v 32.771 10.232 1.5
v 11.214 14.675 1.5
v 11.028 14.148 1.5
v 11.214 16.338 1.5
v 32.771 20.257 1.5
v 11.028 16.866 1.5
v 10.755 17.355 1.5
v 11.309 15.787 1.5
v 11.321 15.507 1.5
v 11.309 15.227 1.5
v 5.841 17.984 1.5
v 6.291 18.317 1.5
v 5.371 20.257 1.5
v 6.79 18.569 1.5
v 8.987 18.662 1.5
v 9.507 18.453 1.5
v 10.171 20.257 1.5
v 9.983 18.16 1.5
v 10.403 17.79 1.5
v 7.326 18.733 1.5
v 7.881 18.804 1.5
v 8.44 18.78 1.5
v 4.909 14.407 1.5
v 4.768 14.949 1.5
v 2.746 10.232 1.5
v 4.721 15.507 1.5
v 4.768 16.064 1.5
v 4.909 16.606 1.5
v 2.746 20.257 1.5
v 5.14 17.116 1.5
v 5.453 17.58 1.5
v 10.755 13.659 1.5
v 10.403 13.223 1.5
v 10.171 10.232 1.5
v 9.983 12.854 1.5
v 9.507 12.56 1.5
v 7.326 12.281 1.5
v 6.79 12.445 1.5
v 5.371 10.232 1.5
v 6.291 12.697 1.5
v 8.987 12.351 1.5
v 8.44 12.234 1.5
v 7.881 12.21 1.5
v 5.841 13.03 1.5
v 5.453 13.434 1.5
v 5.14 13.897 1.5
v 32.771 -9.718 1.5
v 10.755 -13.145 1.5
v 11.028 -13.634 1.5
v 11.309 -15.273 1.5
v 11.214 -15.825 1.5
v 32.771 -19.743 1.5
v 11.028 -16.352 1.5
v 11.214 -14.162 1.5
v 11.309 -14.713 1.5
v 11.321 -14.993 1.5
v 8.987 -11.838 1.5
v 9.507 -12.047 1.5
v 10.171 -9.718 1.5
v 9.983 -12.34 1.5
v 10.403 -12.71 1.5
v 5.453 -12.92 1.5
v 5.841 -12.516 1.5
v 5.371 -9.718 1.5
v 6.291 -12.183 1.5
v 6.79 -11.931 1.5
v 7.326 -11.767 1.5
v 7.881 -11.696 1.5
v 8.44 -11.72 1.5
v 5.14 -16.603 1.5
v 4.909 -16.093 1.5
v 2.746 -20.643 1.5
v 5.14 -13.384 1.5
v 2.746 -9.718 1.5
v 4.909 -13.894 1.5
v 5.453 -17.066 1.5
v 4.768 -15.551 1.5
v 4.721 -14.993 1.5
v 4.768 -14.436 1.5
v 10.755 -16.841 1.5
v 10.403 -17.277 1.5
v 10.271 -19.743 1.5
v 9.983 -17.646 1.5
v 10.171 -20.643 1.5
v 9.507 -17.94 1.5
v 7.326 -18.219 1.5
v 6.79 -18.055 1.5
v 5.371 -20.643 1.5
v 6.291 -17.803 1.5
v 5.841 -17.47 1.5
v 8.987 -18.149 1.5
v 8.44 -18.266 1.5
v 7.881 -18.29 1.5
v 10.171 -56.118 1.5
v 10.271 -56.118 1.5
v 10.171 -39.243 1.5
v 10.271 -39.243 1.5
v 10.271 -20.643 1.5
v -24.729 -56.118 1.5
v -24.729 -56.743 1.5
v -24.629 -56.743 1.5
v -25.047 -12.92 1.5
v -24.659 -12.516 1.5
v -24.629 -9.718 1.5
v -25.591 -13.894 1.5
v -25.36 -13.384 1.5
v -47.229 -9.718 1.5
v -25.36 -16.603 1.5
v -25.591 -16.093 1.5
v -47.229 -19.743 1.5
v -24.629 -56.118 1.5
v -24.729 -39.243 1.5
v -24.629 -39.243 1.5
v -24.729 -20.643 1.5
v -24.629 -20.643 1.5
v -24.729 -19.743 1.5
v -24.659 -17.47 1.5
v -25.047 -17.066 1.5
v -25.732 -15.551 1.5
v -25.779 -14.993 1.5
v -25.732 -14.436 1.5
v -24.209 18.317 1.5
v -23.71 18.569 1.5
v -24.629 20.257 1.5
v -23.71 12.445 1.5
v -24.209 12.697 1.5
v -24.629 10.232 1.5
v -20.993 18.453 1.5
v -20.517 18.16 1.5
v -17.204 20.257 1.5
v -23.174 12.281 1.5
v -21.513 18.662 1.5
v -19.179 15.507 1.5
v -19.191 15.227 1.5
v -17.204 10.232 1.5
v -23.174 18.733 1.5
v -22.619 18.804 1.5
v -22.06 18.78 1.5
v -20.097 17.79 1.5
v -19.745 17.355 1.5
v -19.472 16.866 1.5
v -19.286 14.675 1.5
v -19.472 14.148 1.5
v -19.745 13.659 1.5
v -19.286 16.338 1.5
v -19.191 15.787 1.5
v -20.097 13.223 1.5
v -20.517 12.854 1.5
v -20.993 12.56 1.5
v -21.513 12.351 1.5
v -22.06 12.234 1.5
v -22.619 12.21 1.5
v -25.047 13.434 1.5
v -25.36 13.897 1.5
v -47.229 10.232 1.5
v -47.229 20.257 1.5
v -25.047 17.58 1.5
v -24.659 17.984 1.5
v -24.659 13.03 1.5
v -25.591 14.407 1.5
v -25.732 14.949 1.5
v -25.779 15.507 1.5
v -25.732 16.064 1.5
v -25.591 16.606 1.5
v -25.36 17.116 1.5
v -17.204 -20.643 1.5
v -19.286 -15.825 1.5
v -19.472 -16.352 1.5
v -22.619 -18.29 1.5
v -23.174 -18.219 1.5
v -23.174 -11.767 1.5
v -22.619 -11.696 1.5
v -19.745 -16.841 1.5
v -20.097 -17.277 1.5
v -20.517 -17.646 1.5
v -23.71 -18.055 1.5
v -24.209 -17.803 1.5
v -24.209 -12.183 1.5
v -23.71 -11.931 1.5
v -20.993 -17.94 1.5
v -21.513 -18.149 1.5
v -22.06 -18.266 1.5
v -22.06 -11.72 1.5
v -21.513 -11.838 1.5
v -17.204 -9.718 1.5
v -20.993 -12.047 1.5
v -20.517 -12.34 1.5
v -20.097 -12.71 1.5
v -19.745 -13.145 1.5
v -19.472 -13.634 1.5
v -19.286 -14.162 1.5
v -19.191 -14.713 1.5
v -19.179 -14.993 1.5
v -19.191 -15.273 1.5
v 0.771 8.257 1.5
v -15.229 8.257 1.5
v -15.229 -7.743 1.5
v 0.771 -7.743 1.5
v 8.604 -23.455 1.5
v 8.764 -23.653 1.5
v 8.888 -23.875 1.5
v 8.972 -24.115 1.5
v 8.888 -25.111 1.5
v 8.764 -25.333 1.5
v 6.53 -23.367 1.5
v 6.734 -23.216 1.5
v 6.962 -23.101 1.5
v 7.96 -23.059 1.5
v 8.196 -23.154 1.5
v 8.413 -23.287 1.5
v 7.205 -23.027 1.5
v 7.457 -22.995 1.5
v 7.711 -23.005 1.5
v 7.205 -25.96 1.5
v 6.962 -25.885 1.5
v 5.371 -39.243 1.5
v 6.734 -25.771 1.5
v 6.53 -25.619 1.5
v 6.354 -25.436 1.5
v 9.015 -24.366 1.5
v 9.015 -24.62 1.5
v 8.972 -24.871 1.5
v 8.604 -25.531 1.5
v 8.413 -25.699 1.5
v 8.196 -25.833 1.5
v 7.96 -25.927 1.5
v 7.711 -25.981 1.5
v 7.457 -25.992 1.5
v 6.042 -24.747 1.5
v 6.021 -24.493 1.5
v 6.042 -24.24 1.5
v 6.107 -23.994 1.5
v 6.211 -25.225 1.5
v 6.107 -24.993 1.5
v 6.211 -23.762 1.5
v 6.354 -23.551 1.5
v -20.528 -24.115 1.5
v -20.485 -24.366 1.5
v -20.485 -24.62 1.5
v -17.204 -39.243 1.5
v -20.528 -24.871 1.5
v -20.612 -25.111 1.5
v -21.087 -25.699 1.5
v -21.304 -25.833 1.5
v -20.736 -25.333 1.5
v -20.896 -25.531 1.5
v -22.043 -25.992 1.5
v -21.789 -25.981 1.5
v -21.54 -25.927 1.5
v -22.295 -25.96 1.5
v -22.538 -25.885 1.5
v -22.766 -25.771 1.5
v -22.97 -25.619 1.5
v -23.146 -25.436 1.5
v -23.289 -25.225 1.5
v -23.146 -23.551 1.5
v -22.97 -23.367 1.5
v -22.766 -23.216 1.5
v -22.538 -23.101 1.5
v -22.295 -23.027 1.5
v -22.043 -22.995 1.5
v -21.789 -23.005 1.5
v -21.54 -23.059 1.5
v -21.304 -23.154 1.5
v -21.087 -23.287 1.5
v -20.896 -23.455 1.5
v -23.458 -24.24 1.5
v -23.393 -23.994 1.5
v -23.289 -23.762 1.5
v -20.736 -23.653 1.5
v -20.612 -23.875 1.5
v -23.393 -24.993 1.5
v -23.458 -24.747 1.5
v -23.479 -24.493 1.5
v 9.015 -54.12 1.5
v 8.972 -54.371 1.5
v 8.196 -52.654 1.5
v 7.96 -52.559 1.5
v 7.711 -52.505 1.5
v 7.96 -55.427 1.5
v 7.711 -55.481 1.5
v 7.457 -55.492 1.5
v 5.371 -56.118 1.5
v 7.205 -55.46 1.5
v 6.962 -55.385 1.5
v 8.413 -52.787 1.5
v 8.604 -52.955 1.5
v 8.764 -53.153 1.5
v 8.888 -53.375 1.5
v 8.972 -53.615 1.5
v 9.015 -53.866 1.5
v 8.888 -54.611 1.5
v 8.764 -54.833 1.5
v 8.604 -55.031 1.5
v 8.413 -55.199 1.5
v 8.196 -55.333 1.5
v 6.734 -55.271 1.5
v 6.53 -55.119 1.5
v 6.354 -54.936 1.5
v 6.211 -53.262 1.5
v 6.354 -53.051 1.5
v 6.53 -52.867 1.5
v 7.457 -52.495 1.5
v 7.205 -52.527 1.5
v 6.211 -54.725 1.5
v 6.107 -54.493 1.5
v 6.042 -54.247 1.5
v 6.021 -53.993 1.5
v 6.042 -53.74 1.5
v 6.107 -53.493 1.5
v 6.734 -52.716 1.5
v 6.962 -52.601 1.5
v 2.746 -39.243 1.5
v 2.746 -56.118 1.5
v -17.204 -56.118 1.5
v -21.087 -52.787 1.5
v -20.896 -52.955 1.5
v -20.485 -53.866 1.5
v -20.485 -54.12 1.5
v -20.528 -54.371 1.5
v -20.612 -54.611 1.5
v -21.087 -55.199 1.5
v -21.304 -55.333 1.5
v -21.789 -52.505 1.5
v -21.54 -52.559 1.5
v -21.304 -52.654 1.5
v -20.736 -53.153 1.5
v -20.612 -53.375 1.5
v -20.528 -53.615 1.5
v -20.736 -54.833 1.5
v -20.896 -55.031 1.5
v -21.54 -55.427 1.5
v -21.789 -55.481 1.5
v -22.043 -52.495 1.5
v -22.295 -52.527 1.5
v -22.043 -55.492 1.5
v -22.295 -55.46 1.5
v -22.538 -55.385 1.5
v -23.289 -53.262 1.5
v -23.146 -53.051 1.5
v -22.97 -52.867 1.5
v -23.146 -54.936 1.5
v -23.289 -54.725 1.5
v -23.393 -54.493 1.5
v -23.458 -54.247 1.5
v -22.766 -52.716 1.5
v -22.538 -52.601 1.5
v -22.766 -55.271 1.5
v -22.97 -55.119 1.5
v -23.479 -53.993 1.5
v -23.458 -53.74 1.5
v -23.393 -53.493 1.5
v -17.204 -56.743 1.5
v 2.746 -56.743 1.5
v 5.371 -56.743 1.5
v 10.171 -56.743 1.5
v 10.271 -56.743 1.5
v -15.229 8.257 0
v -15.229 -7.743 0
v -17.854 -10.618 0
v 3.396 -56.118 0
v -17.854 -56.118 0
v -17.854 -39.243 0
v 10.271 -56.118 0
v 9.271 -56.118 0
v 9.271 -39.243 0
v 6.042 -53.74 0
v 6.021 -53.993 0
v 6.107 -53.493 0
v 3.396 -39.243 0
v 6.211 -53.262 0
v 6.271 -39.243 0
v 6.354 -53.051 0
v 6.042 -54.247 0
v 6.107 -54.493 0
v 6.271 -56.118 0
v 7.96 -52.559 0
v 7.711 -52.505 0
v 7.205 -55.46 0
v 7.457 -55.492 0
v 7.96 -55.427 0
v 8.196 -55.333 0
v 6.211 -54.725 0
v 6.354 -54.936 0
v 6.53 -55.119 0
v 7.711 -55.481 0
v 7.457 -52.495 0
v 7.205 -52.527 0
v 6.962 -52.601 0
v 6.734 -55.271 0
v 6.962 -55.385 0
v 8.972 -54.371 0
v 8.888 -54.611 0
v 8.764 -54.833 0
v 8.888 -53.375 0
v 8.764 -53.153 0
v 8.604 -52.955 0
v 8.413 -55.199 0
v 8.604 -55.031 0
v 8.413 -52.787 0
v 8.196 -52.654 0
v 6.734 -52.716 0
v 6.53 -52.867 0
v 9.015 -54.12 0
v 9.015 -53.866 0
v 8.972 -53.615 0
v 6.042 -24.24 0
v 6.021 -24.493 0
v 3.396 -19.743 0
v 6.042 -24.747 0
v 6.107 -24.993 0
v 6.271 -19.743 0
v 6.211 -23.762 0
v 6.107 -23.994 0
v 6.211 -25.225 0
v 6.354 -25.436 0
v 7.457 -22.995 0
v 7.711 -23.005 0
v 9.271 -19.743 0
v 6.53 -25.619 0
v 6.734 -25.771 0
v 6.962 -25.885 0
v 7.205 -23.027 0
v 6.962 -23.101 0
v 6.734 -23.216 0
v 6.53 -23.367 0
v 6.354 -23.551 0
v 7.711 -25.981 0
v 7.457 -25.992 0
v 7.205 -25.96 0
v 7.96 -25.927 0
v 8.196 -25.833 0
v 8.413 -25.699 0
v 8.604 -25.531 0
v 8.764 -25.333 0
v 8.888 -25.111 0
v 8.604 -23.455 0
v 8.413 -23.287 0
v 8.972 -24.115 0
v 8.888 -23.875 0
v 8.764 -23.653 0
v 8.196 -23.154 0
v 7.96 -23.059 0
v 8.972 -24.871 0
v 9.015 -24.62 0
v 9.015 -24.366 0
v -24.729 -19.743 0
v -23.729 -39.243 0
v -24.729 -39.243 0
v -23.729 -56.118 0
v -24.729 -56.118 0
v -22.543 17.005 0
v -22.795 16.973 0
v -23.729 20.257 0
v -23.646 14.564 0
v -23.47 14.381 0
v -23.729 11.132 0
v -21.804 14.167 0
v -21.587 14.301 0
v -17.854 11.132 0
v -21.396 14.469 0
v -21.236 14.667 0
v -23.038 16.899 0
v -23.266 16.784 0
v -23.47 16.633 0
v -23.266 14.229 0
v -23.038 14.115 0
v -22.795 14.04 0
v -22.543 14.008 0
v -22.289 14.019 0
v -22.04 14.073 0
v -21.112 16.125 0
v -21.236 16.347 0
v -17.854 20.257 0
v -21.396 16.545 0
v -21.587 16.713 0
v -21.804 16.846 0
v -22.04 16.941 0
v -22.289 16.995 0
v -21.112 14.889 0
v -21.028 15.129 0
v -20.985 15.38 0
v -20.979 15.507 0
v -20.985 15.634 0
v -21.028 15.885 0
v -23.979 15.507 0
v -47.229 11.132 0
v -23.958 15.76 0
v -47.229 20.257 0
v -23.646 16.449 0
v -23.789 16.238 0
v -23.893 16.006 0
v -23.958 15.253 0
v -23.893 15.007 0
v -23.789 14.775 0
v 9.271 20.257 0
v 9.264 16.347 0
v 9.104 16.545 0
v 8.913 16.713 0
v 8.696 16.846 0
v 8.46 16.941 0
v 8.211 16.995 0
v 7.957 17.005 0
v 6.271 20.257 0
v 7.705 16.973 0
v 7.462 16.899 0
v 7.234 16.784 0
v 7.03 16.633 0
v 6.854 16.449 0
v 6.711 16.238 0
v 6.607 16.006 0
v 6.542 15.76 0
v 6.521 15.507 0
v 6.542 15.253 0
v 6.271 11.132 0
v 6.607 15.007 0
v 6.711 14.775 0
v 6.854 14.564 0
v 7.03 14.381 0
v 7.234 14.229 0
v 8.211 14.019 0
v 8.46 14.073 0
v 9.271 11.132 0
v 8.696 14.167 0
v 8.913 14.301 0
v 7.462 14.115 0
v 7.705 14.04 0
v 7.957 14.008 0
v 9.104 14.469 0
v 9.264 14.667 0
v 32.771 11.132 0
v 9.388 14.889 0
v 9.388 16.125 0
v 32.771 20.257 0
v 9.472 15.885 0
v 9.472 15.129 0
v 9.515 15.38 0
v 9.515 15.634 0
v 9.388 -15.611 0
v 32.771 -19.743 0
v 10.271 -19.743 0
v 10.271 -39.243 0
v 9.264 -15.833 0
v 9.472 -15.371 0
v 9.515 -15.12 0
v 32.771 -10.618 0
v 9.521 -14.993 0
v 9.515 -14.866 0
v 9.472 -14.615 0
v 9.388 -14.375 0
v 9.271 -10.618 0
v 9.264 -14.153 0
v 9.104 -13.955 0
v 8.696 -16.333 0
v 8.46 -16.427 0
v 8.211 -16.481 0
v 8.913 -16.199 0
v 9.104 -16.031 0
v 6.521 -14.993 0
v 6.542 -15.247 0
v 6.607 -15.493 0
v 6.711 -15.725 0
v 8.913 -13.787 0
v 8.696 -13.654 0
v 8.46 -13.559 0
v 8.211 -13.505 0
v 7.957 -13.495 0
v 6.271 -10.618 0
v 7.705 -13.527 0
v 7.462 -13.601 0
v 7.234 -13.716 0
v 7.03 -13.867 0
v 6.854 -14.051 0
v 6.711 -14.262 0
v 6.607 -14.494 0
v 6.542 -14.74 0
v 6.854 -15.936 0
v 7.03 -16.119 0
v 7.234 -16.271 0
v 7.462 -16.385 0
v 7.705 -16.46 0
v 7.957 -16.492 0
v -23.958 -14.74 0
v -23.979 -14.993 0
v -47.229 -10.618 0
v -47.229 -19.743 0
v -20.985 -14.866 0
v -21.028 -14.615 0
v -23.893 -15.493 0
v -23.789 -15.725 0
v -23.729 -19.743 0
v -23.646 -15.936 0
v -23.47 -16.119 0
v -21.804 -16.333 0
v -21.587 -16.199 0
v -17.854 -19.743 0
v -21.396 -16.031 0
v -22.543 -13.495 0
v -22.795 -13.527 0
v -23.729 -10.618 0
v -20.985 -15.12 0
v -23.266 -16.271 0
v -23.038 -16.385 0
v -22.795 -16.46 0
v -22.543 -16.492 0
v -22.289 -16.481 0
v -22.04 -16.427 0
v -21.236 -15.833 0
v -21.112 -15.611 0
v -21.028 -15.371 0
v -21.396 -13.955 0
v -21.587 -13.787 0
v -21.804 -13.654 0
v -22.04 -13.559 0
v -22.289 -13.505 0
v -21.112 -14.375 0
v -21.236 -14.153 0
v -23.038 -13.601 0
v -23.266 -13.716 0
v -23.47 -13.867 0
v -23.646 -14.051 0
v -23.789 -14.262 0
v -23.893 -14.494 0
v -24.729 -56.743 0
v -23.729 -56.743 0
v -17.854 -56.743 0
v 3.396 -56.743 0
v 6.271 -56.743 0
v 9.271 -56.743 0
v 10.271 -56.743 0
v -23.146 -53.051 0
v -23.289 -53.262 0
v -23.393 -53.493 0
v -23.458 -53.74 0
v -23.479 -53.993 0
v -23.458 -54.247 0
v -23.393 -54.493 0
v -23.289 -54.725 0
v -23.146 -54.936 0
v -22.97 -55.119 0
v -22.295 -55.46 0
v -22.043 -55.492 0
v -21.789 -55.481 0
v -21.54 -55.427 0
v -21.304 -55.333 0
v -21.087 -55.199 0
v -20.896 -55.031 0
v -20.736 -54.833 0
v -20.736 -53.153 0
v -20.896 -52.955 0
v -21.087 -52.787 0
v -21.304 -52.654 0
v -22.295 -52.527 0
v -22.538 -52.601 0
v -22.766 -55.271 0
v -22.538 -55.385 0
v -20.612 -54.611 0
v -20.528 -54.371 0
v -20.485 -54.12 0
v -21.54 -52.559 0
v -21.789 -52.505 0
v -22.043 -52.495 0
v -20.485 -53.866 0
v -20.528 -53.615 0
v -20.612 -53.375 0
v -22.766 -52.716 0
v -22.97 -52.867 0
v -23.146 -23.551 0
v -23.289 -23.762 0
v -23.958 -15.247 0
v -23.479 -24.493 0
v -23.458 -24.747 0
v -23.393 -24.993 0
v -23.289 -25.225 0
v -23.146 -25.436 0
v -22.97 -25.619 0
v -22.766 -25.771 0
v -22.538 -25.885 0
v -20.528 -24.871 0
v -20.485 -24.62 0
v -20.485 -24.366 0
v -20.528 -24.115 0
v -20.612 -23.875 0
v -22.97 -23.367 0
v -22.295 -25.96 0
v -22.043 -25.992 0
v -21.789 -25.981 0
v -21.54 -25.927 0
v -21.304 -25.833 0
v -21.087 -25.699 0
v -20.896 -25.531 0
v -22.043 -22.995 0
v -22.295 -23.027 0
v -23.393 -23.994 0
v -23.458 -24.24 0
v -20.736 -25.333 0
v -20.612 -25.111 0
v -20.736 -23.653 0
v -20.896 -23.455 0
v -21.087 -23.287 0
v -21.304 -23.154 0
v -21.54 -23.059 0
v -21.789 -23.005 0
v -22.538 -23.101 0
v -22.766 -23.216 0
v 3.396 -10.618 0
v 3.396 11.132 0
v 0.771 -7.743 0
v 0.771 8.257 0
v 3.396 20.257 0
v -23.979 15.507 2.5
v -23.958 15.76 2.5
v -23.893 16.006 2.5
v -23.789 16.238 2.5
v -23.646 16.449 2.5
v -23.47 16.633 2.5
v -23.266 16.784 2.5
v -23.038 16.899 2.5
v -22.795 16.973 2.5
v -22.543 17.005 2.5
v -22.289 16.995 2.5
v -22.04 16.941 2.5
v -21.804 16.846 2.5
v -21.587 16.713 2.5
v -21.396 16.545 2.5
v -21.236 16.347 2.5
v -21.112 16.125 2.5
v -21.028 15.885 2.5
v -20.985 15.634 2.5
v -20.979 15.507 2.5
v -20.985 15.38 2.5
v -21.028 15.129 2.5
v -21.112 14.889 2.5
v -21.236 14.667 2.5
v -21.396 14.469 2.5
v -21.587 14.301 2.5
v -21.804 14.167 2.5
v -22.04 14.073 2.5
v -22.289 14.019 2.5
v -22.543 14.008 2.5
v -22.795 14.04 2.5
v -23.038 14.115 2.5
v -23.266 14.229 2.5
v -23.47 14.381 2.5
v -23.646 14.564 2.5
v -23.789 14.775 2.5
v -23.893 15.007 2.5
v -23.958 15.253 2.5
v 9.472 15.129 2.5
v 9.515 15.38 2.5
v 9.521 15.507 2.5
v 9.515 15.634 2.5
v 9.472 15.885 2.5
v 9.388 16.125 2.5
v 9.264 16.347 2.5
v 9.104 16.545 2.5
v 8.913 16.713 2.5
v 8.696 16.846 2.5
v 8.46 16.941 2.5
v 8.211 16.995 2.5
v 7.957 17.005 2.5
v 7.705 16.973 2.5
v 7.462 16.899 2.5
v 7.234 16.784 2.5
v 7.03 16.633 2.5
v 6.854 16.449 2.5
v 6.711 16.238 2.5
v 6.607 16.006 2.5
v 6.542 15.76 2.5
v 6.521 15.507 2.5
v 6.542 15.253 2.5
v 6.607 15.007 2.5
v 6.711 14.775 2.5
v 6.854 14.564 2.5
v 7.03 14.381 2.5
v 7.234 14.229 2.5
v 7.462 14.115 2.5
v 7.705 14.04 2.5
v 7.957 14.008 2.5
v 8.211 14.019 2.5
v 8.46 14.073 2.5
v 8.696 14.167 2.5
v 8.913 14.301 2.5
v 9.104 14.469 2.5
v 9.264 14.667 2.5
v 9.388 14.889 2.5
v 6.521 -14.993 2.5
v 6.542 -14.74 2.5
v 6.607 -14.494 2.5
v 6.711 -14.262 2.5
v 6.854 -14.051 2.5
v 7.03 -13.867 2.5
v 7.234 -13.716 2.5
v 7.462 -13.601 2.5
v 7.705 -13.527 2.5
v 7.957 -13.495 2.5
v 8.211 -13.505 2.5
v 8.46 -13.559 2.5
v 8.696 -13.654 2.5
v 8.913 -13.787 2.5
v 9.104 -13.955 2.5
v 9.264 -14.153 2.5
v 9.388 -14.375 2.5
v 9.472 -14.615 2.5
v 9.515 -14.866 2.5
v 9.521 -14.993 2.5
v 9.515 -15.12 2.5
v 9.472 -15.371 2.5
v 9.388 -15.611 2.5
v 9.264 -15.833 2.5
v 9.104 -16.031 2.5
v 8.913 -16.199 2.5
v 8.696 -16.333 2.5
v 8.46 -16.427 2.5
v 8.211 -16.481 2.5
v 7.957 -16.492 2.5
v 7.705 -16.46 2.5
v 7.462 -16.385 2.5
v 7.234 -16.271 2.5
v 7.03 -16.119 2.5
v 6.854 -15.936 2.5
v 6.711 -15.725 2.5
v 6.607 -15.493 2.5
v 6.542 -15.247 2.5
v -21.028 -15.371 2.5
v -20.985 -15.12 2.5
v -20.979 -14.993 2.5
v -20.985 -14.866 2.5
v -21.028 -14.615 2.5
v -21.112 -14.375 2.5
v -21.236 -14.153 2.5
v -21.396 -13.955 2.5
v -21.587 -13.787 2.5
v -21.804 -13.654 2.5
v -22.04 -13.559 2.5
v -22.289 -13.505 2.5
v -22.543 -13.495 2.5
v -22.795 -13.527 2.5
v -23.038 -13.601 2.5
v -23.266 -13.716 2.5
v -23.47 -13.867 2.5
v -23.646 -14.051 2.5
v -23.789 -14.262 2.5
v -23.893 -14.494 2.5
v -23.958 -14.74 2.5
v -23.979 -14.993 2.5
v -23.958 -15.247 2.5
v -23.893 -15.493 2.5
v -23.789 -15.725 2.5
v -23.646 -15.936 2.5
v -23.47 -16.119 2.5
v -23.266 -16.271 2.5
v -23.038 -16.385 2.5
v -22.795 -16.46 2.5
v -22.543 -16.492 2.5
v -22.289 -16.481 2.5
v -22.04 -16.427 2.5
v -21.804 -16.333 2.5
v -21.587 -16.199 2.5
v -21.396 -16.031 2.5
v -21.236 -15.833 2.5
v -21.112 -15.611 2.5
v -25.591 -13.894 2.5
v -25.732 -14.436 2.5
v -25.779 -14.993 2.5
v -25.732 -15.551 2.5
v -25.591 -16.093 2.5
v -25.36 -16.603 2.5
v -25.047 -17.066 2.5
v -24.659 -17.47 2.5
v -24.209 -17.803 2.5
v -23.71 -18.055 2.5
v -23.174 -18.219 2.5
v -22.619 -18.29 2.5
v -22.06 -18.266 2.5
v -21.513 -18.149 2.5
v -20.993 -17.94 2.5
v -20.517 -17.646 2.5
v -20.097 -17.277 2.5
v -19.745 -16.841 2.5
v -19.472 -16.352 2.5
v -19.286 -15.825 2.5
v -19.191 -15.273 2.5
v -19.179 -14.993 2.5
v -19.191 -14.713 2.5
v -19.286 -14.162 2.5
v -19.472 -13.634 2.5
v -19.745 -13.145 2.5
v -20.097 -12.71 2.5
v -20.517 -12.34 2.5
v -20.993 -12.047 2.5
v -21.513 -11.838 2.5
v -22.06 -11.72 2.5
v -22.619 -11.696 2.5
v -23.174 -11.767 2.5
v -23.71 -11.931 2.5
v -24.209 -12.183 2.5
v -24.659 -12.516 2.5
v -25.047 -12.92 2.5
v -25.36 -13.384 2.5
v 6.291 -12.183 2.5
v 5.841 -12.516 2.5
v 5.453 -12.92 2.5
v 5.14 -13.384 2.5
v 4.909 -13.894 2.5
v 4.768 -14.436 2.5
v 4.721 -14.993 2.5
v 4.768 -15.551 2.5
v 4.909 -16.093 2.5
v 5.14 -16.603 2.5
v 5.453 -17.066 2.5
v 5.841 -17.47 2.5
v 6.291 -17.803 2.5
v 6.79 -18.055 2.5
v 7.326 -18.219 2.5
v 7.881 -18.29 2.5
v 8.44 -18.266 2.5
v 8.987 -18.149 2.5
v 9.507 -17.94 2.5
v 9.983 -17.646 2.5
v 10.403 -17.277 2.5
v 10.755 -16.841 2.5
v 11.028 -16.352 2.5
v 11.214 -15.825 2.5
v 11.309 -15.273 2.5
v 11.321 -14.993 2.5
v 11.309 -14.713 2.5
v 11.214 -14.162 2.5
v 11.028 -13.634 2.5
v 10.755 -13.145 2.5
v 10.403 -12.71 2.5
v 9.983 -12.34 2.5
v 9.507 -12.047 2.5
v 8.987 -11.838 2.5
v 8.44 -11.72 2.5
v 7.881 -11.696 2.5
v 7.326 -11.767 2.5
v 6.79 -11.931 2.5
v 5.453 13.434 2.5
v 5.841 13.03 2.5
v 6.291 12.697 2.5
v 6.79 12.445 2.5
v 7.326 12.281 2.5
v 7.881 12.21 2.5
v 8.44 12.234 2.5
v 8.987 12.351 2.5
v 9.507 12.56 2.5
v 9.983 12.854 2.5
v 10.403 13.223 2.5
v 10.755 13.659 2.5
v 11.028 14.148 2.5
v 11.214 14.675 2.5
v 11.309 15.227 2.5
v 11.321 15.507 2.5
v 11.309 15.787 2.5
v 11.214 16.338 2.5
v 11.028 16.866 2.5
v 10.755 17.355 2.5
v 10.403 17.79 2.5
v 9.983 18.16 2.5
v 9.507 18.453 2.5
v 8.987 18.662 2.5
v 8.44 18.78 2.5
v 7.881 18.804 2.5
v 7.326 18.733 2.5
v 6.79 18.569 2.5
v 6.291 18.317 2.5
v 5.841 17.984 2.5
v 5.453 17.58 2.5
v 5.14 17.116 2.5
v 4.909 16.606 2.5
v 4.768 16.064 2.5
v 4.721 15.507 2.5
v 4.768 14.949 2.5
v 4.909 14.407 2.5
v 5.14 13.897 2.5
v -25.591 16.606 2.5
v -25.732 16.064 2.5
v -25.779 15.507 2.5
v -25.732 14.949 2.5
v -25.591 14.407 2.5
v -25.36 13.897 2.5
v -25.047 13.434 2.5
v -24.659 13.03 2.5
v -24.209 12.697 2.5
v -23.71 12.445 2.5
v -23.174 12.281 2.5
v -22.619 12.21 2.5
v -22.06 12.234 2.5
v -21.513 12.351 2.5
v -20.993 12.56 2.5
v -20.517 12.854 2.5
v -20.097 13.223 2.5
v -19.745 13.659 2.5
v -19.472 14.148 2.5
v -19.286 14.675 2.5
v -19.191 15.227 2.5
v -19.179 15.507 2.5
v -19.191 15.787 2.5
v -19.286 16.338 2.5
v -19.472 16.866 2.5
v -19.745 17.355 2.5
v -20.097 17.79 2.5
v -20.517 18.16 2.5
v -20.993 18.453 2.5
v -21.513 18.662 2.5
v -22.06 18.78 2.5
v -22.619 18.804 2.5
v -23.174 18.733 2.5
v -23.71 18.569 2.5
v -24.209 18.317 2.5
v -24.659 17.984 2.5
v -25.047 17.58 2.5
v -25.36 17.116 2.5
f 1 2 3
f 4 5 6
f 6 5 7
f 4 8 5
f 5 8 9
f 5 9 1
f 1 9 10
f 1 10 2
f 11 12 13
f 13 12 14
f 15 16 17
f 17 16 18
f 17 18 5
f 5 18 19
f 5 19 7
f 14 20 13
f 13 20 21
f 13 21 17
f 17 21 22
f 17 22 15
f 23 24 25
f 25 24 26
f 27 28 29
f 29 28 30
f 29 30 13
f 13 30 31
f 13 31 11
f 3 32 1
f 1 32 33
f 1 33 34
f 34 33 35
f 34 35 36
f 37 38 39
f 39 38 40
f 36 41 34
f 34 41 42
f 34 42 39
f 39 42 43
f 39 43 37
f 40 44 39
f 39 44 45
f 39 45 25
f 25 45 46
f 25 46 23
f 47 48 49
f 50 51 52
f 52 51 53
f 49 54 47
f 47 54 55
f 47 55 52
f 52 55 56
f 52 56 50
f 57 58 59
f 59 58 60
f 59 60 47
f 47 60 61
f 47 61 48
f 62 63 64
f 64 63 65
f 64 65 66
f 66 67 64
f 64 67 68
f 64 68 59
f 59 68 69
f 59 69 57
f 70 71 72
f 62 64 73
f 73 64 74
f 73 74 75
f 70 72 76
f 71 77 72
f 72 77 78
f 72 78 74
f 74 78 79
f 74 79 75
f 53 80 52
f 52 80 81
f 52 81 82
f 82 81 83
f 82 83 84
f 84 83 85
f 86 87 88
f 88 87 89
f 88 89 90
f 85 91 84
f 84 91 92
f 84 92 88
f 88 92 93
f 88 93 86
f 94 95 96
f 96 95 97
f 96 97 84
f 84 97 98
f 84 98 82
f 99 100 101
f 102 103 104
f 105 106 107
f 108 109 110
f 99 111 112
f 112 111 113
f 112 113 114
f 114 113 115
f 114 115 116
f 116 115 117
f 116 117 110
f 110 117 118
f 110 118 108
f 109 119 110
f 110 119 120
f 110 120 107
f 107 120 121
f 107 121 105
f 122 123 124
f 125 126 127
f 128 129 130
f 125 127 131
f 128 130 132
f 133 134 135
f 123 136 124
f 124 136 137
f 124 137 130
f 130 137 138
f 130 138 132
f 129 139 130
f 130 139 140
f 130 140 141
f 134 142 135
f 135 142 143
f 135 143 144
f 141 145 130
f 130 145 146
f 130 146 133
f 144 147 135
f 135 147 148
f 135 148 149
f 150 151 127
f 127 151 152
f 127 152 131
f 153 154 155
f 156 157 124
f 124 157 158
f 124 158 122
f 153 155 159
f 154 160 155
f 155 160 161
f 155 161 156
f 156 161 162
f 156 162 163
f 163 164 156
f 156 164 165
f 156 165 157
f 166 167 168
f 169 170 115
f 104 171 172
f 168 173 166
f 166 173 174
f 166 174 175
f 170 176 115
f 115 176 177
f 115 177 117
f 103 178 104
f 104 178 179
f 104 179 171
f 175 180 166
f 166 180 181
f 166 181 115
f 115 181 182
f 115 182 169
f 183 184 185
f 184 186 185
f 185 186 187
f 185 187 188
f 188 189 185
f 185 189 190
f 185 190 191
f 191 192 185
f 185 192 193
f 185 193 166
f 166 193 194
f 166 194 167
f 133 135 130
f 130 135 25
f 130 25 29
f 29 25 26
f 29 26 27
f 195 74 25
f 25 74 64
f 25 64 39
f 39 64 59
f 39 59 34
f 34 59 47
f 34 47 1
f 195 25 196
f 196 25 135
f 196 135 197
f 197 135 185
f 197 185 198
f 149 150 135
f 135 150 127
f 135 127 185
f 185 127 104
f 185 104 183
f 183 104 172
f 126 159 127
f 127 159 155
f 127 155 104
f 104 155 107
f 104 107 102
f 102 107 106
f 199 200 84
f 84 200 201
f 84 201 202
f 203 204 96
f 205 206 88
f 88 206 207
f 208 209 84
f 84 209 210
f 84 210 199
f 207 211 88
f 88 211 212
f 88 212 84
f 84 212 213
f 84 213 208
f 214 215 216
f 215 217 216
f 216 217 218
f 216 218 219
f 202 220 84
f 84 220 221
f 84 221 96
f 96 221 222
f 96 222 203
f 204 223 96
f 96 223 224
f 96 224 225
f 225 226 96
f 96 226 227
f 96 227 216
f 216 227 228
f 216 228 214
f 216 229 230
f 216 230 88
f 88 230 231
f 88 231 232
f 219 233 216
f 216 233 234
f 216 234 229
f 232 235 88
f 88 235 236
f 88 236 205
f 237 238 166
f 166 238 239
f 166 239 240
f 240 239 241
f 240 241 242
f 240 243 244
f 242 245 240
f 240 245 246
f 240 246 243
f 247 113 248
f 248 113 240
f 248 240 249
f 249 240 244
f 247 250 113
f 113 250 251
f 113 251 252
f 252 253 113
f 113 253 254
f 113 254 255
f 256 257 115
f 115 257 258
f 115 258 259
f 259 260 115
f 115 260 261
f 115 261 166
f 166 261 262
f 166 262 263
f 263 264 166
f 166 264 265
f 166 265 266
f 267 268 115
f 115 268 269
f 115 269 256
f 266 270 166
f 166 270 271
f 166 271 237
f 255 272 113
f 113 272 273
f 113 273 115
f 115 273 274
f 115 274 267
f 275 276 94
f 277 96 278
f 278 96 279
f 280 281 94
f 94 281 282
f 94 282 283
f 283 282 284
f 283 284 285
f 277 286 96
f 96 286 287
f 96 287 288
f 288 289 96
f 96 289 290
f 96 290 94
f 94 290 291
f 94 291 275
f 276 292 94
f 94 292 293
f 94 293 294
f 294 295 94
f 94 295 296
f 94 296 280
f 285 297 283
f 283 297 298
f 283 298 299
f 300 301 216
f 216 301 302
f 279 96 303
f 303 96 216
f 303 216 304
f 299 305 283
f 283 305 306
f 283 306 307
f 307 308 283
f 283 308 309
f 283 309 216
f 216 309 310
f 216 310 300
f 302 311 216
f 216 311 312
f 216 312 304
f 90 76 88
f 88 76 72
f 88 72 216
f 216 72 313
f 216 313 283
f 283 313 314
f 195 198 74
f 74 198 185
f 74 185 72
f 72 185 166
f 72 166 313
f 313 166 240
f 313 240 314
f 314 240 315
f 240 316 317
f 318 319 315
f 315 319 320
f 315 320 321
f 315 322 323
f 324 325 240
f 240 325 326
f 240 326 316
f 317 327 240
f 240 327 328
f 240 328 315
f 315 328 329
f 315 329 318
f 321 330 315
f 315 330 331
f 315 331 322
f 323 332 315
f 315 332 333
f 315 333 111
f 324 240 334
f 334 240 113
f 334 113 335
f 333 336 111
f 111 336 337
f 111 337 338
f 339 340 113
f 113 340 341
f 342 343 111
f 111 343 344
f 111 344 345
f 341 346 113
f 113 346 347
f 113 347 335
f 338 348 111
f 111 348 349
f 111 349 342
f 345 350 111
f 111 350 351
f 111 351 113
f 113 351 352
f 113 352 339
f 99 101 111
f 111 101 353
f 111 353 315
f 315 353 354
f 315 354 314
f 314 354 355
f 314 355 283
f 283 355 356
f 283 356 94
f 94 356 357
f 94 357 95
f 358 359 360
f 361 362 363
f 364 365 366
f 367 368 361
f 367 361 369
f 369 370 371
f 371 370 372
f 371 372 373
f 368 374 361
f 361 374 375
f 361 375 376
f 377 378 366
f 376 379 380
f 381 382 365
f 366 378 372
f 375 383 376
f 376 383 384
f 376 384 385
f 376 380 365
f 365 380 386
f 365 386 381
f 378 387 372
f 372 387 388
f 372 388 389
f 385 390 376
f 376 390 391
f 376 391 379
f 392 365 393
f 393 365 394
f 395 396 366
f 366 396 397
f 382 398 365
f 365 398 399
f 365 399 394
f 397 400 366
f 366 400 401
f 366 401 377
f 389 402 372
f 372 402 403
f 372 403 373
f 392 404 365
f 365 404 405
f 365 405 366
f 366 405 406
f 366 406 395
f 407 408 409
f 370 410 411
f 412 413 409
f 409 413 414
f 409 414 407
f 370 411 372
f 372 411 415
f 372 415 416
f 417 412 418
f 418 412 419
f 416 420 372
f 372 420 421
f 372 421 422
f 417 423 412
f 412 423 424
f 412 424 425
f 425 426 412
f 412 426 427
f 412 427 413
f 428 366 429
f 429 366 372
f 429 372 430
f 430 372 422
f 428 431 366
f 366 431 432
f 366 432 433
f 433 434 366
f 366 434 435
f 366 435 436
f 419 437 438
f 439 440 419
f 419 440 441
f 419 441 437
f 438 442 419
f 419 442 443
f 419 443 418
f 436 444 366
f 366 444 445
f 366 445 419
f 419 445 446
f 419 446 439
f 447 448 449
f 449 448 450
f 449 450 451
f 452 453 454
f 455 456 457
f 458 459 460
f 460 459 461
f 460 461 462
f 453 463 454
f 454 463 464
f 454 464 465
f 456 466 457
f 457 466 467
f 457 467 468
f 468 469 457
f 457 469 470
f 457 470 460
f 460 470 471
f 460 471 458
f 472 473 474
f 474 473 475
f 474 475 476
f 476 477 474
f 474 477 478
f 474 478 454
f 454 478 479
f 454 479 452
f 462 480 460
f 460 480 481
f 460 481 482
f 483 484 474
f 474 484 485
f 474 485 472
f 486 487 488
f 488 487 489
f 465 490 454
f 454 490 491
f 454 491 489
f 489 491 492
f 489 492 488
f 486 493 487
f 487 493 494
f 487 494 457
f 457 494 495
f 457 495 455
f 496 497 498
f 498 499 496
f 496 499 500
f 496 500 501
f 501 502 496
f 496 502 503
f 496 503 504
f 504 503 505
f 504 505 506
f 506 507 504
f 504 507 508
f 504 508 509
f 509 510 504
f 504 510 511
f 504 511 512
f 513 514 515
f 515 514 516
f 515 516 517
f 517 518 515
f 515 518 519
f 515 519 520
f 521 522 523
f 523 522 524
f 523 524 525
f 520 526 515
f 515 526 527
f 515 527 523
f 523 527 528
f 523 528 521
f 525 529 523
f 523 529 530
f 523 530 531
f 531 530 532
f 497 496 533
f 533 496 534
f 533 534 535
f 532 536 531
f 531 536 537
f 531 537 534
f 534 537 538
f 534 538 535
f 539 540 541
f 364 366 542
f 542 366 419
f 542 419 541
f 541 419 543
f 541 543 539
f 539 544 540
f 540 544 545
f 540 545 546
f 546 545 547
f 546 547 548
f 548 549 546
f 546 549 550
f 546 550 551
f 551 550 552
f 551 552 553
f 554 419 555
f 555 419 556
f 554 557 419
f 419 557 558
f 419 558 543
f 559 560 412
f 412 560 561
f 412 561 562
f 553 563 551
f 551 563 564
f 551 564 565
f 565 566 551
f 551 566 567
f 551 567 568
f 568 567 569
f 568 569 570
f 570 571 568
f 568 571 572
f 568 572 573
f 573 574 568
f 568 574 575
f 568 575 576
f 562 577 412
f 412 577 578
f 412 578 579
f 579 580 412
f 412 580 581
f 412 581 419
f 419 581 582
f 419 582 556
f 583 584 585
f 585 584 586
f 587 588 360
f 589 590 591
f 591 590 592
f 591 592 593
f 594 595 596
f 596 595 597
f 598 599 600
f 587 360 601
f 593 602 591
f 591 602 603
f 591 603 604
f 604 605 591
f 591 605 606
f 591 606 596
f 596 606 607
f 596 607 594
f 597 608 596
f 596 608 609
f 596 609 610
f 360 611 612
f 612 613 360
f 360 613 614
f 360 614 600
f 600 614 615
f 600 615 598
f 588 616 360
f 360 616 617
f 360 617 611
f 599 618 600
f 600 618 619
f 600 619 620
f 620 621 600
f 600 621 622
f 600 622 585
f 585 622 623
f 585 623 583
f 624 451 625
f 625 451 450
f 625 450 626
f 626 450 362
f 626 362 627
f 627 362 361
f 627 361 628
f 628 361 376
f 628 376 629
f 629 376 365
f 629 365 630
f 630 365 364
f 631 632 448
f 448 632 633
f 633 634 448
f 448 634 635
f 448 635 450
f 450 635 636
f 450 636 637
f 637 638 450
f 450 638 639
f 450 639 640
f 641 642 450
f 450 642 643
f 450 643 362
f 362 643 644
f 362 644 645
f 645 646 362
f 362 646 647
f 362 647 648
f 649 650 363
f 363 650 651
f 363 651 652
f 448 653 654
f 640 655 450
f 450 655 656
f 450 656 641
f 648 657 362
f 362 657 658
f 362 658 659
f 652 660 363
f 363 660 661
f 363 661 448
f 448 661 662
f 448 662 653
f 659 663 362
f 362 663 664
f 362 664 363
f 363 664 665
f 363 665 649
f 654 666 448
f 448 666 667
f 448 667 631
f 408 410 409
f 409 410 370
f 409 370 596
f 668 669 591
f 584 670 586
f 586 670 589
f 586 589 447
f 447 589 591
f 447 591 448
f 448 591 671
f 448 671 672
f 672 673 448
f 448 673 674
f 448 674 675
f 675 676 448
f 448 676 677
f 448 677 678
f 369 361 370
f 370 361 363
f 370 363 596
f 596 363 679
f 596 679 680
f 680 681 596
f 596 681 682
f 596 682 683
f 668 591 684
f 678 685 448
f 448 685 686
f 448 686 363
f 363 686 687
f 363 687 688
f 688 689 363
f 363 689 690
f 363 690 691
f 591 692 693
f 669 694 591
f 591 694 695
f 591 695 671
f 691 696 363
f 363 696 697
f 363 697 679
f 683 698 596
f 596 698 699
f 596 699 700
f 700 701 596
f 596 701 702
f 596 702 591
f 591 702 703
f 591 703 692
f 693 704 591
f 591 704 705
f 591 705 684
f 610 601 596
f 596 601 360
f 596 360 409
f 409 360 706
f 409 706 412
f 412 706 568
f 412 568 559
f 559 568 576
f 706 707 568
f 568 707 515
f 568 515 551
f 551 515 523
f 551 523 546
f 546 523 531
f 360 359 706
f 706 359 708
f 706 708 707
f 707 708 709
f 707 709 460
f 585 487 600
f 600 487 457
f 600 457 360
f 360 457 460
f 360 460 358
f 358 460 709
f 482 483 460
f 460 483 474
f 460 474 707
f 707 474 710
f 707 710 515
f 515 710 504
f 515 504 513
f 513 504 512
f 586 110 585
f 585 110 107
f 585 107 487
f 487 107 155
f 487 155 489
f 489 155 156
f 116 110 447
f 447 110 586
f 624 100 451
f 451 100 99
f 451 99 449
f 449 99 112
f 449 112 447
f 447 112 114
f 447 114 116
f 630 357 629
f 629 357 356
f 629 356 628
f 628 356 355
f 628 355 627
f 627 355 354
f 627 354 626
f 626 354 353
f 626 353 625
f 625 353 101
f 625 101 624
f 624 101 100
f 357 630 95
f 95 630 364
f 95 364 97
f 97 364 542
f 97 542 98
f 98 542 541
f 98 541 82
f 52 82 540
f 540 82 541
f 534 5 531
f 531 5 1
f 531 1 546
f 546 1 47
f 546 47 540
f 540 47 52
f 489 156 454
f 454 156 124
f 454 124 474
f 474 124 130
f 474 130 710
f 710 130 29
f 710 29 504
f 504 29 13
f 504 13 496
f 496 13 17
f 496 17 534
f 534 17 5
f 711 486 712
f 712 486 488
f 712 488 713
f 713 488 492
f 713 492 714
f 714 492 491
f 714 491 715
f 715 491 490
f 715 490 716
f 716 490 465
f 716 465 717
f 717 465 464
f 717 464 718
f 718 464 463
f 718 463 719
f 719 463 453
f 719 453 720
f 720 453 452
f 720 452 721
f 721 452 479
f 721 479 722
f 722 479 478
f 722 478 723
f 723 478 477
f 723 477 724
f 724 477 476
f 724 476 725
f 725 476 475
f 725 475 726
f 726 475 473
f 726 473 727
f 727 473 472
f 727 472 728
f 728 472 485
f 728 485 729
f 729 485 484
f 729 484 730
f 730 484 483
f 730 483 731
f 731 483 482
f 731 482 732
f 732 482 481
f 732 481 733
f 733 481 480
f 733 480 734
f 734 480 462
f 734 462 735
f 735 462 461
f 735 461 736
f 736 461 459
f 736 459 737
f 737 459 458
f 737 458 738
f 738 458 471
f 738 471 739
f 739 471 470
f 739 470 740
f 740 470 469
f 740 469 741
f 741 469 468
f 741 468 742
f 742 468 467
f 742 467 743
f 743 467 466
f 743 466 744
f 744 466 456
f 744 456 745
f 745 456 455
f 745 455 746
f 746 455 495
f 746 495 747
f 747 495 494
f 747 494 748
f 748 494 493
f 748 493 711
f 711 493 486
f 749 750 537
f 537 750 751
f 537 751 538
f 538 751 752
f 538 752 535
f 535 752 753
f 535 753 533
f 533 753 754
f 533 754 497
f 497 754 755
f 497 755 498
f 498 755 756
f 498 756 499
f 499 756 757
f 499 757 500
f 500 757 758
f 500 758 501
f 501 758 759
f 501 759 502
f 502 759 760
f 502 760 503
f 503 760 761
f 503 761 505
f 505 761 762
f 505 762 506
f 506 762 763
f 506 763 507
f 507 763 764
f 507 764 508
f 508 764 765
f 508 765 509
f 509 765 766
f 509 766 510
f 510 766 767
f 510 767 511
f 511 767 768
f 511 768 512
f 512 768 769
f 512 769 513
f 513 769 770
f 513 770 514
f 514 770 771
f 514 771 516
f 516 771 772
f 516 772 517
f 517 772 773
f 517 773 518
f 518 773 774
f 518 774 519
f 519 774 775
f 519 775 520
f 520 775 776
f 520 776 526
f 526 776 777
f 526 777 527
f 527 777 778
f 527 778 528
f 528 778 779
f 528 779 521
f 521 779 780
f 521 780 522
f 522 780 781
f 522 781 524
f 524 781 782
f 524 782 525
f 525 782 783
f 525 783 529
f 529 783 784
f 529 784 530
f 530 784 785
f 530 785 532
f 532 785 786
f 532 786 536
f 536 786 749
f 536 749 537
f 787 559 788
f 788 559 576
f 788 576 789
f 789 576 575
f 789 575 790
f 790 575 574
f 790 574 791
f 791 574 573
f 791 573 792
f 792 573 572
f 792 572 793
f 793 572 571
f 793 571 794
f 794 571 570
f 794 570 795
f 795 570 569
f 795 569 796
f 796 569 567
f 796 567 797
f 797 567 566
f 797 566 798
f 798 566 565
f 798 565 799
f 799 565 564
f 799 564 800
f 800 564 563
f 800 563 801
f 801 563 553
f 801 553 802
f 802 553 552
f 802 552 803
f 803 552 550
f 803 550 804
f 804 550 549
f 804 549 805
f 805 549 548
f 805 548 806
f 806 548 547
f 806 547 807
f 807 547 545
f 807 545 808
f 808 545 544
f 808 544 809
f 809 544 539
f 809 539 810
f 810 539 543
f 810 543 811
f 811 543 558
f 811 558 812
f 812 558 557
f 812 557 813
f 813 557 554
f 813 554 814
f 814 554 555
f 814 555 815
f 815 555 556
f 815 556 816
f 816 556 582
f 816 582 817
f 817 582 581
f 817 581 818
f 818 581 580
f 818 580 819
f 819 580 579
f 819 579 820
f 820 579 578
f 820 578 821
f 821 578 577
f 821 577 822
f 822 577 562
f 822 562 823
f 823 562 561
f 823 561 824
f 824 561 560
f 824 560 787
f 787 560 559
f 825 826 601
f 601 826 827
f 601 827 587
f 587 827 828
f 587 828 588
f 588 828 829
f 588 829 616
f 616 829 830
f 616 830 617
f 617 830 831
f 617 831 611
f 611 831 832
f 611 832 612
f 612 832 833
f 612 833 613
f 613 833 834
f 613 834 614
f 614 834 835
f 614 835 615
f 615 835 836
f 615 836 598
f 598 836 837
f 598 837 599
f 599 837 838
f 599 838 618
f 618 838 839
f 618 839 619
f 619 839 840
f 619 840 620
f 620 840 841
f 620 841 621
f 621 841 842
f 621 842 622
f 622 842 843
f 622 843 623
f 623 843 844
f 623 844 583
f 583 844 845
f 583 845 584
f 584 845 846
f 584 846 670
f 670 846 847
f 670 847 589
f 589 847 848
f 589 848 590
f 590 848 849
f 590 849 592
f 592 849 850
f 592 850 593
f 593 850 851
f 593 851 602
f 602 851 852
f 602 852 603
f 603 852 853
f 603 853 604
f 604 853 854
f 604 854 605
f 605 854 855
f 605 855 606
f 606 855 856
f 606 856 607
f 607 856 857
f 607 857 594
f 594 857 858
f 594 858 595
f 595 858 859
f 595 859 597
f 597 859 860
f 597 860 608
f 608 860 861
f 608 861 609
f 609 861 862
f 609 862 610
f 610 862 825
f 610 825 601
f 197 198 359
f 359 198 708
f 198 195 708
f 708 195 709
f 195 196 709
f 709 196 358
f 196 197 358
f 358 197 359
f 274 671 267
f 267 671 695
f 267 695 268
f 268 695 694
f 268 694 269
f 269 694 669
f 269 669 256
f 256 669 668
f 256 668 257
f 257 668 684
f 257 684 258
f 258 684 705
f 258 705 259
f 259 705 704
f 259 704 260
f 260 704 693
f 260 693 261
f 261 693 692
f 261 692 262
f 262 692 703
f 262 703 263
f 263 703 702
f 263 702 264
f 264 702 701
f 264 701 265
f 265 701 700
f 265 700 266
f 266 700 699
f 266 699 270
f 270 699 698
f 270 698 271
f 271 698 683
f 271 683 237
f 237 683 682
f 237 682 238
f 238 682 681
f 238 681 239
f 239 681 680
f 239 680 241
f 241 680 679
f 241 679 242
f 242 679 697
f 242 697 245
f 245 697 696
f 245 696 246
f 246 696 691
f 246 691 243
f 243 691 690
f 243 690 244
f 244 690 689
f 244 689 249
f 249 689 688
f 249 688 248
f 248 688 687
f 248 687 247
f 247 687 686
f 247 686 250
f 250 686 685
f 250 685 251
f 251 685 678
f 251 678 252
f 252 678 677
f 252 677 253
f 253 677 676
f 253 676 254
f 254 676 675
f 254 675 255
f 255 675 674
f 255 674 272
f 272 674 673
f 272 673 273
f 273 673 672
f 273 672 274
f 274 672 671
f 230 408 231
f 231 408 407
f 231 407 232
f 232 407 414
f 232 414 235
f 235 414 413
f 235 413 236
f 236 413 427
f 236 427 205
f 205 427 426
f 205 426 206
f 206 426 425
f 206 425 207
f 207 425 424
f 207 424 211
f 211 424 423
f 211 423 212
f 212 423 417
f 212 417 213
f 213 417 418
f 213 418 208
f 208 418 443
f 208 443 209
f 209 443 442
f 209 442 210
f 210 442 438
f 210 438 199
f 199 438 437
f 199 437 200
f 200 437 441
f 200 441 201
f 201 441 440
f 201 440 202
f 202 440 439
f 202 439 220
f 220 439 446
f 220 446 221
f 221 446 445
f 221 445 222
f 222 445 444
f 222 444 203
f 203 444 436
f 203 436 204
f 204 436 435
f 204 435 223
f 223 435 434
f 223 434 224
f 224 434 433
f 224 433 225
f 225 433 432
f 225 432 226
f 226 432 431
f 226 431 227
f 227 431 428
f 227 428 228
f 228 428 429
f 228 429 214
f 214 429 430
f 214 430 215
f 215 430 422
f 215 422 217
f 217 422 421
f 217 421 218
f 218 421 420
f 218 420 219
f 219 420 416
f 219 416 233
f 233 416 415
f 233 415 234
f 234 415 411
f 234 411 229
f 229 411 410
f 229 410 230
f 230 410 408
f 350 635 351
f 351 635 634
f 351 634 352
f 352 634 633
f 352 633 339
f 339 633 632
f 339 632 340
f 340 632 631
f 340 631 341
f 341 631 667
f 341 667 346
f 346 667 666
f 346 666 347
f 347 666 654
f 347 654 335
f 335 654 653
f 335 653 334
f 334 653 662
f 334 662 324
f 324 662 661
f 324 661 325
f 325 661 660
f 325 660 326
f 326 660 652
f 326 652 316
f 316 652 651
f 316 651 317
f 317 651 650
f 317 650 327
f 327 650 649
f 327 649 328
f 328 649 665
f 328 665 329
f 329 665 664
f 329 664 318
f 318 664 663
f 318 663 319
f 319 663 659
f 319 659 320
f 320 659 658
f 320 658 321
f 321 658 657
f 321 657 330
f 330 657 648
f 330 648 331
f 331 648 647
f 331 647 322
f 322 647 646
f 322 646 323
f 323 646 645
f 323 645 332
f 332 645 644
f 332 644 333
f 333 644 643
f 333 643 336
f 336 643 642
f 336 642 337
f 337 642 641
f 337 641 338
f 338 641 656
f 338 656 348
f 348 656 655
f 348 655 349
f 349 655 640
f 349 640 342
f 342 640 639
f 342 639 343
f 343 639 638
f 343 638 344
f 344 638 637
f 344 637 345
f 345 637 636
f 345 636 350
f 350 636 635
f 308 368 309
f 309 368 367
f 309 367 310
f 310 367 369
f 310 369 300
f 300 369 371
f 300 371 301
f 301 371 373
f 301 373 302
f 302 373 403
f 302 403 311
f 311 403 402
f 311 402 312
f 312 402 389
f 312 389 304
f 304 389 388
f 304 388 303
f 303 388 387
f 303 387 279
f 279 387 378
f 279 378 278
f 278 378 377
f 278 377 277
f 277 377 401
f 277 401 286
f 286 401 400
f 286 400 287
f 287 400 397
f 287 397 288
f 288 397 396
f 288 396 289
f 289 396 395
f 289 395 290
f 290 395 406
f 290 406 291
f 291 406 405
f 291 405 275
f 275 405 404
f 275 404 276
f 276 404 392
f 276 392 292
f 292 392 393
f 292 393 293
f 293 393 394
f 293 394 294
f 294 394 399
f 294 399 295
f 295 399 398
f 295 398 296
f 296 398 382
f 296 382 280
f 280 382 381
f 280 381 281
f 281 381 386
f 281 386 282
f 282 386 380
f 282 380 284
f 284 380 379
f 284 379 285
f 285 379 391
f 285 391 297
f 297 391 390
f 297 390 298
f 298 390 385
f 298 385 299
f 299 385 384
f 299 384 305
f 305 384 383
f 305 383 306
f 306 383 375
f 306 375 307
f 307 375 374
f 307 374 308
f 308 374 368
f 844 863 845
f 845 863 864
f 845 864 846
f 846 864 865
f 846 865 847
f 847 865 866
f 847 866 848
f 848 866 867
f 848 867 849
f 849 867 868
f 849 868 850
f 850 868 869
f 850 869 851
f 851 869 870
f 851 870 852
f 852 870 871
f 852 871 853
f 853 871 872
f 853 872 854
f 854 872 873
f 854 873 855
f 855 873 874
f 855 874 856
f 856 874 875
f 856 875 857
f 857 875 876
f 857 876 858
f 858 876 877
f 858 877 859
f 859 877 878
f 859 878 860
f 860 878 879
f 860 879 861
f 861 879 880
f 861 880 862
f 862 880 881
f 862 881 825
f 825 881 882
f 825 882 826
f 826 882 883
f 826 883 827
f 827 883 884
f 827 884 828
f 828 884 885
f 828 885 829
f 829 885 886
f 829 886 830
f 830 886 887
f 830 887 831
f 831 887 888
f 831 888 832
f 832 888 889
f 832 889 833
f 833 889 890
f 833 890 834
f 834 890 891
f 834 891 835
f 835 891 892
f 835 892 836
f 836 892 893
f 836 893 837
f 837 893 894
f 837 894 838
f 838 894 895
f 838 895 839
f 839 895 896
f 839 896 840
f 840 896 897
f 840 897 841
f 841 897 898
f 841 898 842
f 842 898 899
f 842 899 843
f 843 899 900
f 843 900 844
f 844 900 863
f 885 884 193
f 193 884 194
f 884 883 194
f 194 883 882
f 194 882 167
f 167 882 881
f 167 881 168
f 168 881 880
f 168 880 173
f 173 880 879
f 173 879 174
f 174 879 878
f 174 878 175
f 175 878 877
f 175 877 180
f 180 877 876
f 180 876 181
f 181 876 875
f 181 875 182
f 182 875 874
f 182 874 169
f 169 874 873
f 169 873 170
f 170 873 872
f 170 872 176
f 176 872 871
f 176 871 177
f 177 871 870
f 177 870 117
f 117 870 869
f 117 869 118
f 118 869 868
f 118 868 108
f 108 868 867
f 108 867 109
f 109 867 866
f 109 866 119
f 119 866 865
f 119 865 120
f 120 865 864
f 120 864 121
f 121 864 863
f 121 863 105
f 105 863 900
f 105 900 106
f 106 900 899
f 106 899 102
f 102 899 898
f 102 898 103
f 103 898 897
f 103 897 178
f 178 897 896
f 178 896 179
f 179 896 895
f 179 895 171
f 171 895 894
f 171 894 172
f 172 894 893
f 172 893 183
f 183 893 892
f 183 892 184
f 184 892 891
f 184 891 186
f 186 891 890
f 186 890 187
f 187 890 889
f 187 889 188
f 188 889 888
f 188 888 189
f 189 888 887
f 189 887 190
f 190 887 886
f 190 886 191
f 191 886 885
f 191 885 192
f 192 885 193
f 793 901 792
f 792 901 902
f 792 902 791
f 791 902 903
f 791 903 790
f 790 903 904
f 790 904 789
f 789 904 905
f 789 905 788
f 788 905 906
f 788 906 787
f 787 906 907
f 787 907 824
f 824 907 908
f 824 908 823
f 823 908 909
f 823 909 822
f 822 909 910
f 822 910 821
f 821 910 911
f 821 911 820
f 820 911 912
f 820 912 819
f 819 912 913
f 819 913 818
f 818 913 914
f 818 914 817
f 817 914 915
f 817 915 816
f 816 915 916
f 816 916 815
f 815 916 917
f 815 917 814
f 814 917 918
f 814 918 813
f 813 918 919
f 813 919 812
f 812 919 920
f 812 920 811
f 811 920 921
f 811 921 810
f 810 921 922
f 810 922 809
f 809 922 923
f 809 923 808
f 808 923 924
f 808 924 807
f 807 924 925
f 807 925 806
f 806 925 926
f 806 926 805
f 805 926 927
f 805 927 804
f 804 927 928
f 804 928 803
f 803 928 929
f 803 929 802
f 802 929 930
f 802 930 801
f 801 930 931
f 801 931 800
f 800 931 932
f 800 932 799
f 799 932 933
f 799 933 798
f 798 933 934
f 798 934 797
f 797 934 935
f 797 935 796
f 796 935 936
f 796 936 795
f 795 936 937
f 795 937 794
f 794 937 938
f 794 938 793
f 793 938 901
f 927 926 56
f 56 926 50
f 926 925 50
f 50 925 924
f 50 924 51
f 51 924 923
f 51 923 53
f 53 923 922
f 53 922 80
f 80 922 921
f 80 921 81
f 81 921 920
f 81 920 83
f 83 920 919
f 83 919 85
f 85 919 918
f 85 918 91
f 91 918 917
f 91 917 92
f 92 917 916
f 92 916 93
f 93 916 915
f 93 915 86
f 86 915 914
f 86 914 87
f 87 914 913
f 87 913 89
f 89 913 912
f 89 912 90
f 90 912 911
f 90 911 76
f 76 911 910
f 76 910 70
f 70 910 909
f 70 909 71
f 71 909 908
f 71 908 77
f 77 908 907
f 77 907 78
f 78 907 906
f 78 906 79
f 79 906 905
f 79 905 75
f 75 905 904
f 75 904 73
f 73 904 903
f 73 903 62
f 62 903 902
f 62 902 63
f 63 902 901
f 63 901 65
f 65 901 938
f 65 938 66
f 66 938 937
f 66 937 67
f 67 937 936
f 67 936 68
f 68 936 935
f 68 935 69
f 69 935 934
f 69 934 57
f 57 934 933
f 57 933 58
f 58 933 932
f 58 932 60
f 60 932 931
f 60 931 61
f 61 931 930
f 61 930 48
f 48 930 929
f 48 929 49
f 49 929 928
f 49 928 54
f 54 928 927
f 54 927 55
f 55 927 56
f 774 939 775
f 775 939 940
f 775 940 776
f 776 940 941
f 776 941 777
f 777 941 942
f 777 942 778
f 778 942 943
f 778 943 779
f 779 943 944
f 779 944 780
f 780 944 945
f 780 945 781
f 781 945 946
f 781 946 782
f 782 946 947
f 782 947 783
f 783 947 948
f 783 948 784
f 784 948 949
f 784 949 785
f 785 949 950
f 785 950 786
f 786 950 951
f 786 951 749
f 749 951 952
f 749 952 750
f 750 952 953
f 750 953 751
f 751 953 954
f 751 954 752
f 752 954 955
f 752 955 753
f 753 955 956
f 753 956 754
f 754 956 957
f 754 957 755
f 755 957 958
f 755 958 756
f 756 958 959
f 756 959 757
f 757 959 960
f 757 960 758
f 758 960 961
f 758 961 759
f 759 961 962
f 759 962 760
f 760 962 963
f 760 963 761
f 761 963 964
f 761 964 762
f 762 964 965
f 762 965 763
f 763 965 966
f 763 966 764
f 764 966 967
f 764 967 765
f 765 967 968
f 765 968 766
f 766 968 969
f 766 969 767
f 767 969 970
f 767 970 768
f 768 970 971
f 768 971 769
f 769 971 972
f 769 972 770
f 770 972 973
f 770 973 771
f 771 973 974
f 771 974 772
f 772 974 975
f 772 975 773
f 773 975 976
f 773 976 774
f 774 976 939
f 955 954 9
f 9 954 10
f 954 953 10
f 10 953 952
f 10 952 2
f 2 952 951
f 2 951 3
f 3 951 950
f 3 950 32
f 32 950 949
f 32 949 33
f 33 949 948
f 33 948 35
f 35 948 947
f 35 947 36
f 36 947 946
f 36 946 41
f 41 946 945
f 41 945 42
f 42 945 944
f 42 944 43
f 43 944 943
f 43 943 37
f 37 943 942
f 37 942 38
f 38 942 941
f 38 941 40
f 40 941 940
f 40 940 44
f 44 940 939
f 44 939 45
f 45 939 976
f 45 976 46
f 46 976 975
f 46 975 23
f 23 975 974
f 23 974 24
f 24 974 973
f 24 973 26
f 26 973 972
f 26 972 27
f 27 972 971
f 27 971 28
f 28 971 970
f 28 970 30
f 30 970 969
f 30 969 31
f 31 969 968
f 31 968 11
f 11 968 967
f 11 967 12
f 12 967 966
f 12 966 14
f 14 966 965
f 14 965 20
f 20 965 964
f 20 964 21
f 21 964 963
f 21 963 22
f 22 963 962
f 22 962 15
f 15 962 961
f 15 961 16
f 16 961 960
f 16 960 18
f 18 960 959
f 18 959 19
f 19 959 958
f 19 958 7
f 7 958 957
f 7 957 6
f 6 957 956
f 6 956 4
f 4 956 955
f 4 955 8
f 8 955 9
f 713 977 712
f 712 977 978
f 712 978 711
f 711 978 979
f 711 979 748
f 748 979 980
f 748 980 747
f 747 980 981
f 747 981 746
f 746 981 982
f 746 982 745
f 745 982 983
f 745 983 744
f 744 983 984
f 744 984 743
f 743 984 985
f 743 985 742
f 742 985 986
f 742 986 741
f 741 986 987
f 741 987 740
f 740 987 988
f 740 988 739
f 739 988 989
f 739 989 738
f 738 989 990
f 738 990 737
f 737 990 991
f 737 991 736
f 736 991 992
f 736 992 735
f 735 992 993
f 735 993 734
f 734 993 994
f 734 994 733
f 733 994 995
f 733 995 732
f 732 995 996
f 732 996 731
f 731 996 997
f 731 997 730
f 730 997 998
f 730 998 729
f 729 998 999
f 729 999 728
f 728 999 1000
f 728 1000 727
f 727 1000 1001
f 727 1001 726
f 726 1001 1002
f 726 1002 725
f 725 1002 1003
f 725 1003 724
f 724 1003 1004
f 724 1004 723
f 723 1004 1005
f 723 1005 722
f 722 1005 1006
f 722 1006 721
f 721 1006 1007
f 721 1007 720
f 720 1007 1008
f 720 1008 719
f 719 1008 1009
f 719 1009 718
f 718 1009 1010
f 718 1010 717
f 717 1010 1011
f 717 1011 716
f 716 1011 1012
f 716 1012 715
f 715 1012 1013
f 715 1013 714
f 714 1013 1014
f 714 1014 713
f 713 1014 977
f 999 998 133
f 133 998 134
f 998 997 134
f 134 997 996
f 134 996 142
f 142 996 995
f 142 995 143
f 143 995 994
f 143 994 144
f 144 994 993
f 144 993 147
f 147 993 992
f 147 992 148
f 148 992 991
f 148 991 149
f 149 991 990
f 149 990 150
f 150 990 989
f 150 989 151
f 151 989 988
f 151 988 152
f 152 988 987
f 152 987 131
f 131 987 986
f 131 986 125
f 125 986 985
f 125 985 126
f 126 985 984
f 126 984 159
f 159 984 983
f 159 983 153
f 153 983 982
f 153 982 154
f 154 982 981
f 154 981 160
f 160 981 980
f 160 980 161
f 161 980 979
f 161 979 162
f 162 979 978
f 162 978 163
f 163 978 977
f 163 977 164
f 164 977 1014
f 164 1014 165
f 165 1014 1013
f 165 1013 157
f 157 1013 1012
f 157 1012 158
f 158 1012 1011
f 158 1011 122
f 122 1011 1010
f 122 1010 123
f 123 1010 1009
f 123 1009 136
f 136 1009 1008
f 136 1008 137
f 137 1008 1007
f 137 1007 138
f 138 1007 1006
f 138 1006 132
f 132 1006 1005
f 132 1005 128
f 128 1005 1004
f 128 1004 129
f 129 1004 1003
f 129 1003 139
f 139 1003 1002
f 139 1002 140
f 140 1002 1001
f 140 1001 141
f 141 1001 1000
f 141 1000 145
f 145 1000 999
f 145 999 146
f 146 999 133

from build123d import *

# Parameters (mm, degrees)
SKETCH_2_R      = 1.5
EXTRUDE_1_DEPTH = 1.5
SKETCH_3_R      = 3.3
SKETCH_3_R_2    = 1.5
EXTRUDE_2_DEPTH = 1


with BuildPart() as part:
    # 草图2 → 凸台-拉伸1 (new body)
    with BuildSketch(Plane.XY):
        Polygon((-47.229146383, 20.256789608), (32.770853617, 20.256789608), (32.770853617, -19.743210392), (10.270853617, -19.743210392), (10.270853617, -56.743210392), (-24.729146383, -56.743210392), (-24.729146383, -19.743210392), (-47.229146383, -19.743210392), align=None)
        with Locations((-22.479146383, 15.506789608)):
            Circle(SKETCH_2_R, mode=Mode.SUBTRACT)
        with Locations(Location((8.020853617, 15.506789608, 0), (0, 0, 180))):
            Circle(SKETCH_2_R, mode=Mode.SUBTRACT)
        with Locations((8.020853617, -14.993210392)):
            Circle(SKETCH_2_R, mode=Mode.SUBTRACT)
        with Locations(Location((-22.479146383, -14.993210392, 0), (0, 0, 180))):
            Circle(SKETCH_2_R, mode=Mode.SUBTRACT)
        with Locations(Location((-21.979146383, -24.493210392, 0), (0, 0, 180))):
            Circle(SKETCH_2_R, mode=Mode.SUBTRACT)
        with Locations(Location((7.520853617, -24.493210392, 0), (0, 0, 180))):
            Circle(SKETCH_2_R, mode=Mode.SUBTRACT)
        with Locations(Location((-21.979146383, -53.993210392, 0), (0, 0, 180))):
            Circle(SKETCH_2_R, mode=Mode.SUBTRACT)
        with Locations(Location((7.520853617, -53.993210392, 0), (0, 0, 180))):
            Circle(SKETCH_2_R, mode=Mode.SUBTRACT)
        Polygon((-7.229146383, -7.743210392), (0.770853617, -7.743210392), (0.770853617, 8.256789608), (-15.229146383, 8.256789608), (-15.229146383, -7.743210392), align=None, mode=Mode.SUBTRACT)
    extrude(amount=EXTRUDE_1_DEPTH)

    # 草图3 → 凸台-拉伸2 (add)
    # profile 1 of 4: a face of its own
    with BuildSketch(Plane.XY.offset(1.5)):
        with Locations((-22.479146383, 15.506789608)):
            Circle(SKETCH_3_R)
        with Locations((-22.479146383, 15.506789608)):
            Circle(SKETCH_3_R_2, mode=Mode.SUBTRACT)
    # profile 2 of 4: a face of its own
    with BuildSketch(Plane.XY.offset(1.5)):
        with Locations((8.020853617, 15.506789608)):
            Circle(SKETCH_3_R)
        with Locations(Location((8.020853617, 15.506789608, 0), (0, 0, 180))):
            Circle(SKETCH_3_R_2, mode=Mode.SUBTRACT)
    # profile 3 of 4: a face of its own
    with BuildSketch(Plane.XY.offset(1.5)):
        with Locations((-22.479146383, -14.993210392)):
            Circle(SKETCH_3_R)
        with Locations(Location((-22.479146383, -14.993210392, 0), (0, 0, 180))):
            Circle(SKETCH_3_R_2, mode=Mode.SUBTRACT)
    # profile 4 of 4: a face of its own
    with BuildSketch(Plane.XY.offset(1.5)):
        with Locations((8.020853617, -14.993210392)):
            Circle(SKETCH_3_R)
        with Locations((8.020853617, -14.993210392)):
            Circle(SKETCH_3_R_2, mode=Mode.SUBTRACT)
    extrude(amount=EXTRUDE_2_DEPTH)


solid = part.part
